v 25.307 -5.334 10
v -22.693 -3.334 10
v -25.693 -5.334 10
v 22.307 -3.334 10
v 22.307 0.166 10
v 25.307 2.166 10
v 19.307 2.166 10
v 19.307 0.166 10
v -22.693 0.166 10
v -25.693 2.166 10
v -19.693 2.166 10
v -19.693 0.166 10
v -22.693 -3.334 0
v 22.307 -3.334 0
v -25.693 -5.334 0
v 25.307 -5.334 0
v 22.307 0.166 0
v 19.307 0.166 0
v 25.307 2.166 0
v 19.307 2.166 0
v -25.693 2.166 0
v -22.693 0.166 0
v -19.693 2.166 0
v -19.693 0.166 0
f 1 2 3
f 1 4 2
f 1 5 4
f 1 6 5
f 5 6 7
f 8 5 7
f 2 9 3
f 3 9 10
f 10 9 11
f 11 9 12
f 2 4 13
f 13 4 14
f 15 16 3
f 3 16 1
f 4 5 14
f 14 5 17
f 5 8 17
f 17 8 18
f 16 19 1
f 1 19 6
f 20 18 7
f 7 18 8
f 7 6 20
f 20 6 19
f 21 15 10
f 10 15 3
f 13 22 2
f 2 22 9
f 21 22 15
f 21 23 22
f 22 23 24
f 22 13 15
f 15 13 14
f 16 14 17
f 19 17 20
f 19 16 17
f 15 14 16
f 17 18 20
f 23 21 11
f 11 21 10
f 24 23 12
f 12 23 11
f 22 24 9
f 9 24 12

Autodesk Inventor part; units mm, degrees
ref_plane "YZ Plane" through (0, 0, 0) normal (1, 0, 0) x (0, 1, 0)
ref_plane "XZ Plane" through (0, 0, 0) normal (0, 1, 0) x (-1, 0, 0)
ref_plane "XY Plane" through (0, 0, 0) normal (0, 0, 1) x (1, 0, 0)
sketch "Sketch1" plane through (0, 0, 0) normal (0, 0, 1) x (1, 0, 0)
  line L0 (-25.6928, -3.3339) -> (25.3072, -3.3339)
  line L1 (25.3072, -3.3339) -> (25.3072, -5.3339)
  line L2 (25.3072, -5.3339) -> (-25.6928, -5.3339)
  line L3 (-25.6928, -5.3339) -> (-25.6928, -3.3339)
  line L4 (-25.6928, -5.3339) -> (-22.6928, -5.3339)
  line L5 (-22.6928, -5.3339) -> (-22.6928, 2.1661)
  line L6 (-22.6928, 2.1661) -> (-25.6928, 2.1661)
  line L7 (-25.6928, 2.1661) -> (-25.6928, -5.3339)
  line L8 (-25.6928, 2.1661) -> (-19.6928, 2.1661)
  line L9 (-19.6928, 2.1661) -> (-19.6928, 0.1661)
  line L10 (-19.6928, 0.1661) -> (-25.6928, 0.1661)
  line L11 (-25.6928, 0.1661) -> (-25.6928, 2.1661)
  line L12 (25.3072, -5.3339) -> (22.3072, -5.3339)
  line L13 (22.3072, -5.3339) -> (22.3072, 2.1661)
  line L14 (22.3072, 2.1661) -> (25.3072, 2.1661)
  line L15 (25.3072, 2.1661) -> (25.3072, -5.3339)
  line L16 (25.3072, 2.1661) -> (19.3072, 2.1661)
  line L17 (19.3072, 2.1661) -> (19.3072, 0.1661)
  line L18 (19.3072, 0.1661) -> (25.3072, 0.1661)
  line L19 (25.3072, 0.1661) -> (25.3072, 2.1661)
  point P0 (0, 0)
  dimension "d0" = 45
  dimension "d1" = 3.5
  dimension "d2" = 6
  dimension "d3" = 6
  dimension "d4" = 51
  dimension "d5" = 3
  dimension "d6" = 2
  dimension "d7" = 3
  dimension "d8" = 2
  dimension "d9" = 2
extrude "Extrusion1" add sketch "Sketch1" along normal blind 10
properties part number "Side Grapper"
